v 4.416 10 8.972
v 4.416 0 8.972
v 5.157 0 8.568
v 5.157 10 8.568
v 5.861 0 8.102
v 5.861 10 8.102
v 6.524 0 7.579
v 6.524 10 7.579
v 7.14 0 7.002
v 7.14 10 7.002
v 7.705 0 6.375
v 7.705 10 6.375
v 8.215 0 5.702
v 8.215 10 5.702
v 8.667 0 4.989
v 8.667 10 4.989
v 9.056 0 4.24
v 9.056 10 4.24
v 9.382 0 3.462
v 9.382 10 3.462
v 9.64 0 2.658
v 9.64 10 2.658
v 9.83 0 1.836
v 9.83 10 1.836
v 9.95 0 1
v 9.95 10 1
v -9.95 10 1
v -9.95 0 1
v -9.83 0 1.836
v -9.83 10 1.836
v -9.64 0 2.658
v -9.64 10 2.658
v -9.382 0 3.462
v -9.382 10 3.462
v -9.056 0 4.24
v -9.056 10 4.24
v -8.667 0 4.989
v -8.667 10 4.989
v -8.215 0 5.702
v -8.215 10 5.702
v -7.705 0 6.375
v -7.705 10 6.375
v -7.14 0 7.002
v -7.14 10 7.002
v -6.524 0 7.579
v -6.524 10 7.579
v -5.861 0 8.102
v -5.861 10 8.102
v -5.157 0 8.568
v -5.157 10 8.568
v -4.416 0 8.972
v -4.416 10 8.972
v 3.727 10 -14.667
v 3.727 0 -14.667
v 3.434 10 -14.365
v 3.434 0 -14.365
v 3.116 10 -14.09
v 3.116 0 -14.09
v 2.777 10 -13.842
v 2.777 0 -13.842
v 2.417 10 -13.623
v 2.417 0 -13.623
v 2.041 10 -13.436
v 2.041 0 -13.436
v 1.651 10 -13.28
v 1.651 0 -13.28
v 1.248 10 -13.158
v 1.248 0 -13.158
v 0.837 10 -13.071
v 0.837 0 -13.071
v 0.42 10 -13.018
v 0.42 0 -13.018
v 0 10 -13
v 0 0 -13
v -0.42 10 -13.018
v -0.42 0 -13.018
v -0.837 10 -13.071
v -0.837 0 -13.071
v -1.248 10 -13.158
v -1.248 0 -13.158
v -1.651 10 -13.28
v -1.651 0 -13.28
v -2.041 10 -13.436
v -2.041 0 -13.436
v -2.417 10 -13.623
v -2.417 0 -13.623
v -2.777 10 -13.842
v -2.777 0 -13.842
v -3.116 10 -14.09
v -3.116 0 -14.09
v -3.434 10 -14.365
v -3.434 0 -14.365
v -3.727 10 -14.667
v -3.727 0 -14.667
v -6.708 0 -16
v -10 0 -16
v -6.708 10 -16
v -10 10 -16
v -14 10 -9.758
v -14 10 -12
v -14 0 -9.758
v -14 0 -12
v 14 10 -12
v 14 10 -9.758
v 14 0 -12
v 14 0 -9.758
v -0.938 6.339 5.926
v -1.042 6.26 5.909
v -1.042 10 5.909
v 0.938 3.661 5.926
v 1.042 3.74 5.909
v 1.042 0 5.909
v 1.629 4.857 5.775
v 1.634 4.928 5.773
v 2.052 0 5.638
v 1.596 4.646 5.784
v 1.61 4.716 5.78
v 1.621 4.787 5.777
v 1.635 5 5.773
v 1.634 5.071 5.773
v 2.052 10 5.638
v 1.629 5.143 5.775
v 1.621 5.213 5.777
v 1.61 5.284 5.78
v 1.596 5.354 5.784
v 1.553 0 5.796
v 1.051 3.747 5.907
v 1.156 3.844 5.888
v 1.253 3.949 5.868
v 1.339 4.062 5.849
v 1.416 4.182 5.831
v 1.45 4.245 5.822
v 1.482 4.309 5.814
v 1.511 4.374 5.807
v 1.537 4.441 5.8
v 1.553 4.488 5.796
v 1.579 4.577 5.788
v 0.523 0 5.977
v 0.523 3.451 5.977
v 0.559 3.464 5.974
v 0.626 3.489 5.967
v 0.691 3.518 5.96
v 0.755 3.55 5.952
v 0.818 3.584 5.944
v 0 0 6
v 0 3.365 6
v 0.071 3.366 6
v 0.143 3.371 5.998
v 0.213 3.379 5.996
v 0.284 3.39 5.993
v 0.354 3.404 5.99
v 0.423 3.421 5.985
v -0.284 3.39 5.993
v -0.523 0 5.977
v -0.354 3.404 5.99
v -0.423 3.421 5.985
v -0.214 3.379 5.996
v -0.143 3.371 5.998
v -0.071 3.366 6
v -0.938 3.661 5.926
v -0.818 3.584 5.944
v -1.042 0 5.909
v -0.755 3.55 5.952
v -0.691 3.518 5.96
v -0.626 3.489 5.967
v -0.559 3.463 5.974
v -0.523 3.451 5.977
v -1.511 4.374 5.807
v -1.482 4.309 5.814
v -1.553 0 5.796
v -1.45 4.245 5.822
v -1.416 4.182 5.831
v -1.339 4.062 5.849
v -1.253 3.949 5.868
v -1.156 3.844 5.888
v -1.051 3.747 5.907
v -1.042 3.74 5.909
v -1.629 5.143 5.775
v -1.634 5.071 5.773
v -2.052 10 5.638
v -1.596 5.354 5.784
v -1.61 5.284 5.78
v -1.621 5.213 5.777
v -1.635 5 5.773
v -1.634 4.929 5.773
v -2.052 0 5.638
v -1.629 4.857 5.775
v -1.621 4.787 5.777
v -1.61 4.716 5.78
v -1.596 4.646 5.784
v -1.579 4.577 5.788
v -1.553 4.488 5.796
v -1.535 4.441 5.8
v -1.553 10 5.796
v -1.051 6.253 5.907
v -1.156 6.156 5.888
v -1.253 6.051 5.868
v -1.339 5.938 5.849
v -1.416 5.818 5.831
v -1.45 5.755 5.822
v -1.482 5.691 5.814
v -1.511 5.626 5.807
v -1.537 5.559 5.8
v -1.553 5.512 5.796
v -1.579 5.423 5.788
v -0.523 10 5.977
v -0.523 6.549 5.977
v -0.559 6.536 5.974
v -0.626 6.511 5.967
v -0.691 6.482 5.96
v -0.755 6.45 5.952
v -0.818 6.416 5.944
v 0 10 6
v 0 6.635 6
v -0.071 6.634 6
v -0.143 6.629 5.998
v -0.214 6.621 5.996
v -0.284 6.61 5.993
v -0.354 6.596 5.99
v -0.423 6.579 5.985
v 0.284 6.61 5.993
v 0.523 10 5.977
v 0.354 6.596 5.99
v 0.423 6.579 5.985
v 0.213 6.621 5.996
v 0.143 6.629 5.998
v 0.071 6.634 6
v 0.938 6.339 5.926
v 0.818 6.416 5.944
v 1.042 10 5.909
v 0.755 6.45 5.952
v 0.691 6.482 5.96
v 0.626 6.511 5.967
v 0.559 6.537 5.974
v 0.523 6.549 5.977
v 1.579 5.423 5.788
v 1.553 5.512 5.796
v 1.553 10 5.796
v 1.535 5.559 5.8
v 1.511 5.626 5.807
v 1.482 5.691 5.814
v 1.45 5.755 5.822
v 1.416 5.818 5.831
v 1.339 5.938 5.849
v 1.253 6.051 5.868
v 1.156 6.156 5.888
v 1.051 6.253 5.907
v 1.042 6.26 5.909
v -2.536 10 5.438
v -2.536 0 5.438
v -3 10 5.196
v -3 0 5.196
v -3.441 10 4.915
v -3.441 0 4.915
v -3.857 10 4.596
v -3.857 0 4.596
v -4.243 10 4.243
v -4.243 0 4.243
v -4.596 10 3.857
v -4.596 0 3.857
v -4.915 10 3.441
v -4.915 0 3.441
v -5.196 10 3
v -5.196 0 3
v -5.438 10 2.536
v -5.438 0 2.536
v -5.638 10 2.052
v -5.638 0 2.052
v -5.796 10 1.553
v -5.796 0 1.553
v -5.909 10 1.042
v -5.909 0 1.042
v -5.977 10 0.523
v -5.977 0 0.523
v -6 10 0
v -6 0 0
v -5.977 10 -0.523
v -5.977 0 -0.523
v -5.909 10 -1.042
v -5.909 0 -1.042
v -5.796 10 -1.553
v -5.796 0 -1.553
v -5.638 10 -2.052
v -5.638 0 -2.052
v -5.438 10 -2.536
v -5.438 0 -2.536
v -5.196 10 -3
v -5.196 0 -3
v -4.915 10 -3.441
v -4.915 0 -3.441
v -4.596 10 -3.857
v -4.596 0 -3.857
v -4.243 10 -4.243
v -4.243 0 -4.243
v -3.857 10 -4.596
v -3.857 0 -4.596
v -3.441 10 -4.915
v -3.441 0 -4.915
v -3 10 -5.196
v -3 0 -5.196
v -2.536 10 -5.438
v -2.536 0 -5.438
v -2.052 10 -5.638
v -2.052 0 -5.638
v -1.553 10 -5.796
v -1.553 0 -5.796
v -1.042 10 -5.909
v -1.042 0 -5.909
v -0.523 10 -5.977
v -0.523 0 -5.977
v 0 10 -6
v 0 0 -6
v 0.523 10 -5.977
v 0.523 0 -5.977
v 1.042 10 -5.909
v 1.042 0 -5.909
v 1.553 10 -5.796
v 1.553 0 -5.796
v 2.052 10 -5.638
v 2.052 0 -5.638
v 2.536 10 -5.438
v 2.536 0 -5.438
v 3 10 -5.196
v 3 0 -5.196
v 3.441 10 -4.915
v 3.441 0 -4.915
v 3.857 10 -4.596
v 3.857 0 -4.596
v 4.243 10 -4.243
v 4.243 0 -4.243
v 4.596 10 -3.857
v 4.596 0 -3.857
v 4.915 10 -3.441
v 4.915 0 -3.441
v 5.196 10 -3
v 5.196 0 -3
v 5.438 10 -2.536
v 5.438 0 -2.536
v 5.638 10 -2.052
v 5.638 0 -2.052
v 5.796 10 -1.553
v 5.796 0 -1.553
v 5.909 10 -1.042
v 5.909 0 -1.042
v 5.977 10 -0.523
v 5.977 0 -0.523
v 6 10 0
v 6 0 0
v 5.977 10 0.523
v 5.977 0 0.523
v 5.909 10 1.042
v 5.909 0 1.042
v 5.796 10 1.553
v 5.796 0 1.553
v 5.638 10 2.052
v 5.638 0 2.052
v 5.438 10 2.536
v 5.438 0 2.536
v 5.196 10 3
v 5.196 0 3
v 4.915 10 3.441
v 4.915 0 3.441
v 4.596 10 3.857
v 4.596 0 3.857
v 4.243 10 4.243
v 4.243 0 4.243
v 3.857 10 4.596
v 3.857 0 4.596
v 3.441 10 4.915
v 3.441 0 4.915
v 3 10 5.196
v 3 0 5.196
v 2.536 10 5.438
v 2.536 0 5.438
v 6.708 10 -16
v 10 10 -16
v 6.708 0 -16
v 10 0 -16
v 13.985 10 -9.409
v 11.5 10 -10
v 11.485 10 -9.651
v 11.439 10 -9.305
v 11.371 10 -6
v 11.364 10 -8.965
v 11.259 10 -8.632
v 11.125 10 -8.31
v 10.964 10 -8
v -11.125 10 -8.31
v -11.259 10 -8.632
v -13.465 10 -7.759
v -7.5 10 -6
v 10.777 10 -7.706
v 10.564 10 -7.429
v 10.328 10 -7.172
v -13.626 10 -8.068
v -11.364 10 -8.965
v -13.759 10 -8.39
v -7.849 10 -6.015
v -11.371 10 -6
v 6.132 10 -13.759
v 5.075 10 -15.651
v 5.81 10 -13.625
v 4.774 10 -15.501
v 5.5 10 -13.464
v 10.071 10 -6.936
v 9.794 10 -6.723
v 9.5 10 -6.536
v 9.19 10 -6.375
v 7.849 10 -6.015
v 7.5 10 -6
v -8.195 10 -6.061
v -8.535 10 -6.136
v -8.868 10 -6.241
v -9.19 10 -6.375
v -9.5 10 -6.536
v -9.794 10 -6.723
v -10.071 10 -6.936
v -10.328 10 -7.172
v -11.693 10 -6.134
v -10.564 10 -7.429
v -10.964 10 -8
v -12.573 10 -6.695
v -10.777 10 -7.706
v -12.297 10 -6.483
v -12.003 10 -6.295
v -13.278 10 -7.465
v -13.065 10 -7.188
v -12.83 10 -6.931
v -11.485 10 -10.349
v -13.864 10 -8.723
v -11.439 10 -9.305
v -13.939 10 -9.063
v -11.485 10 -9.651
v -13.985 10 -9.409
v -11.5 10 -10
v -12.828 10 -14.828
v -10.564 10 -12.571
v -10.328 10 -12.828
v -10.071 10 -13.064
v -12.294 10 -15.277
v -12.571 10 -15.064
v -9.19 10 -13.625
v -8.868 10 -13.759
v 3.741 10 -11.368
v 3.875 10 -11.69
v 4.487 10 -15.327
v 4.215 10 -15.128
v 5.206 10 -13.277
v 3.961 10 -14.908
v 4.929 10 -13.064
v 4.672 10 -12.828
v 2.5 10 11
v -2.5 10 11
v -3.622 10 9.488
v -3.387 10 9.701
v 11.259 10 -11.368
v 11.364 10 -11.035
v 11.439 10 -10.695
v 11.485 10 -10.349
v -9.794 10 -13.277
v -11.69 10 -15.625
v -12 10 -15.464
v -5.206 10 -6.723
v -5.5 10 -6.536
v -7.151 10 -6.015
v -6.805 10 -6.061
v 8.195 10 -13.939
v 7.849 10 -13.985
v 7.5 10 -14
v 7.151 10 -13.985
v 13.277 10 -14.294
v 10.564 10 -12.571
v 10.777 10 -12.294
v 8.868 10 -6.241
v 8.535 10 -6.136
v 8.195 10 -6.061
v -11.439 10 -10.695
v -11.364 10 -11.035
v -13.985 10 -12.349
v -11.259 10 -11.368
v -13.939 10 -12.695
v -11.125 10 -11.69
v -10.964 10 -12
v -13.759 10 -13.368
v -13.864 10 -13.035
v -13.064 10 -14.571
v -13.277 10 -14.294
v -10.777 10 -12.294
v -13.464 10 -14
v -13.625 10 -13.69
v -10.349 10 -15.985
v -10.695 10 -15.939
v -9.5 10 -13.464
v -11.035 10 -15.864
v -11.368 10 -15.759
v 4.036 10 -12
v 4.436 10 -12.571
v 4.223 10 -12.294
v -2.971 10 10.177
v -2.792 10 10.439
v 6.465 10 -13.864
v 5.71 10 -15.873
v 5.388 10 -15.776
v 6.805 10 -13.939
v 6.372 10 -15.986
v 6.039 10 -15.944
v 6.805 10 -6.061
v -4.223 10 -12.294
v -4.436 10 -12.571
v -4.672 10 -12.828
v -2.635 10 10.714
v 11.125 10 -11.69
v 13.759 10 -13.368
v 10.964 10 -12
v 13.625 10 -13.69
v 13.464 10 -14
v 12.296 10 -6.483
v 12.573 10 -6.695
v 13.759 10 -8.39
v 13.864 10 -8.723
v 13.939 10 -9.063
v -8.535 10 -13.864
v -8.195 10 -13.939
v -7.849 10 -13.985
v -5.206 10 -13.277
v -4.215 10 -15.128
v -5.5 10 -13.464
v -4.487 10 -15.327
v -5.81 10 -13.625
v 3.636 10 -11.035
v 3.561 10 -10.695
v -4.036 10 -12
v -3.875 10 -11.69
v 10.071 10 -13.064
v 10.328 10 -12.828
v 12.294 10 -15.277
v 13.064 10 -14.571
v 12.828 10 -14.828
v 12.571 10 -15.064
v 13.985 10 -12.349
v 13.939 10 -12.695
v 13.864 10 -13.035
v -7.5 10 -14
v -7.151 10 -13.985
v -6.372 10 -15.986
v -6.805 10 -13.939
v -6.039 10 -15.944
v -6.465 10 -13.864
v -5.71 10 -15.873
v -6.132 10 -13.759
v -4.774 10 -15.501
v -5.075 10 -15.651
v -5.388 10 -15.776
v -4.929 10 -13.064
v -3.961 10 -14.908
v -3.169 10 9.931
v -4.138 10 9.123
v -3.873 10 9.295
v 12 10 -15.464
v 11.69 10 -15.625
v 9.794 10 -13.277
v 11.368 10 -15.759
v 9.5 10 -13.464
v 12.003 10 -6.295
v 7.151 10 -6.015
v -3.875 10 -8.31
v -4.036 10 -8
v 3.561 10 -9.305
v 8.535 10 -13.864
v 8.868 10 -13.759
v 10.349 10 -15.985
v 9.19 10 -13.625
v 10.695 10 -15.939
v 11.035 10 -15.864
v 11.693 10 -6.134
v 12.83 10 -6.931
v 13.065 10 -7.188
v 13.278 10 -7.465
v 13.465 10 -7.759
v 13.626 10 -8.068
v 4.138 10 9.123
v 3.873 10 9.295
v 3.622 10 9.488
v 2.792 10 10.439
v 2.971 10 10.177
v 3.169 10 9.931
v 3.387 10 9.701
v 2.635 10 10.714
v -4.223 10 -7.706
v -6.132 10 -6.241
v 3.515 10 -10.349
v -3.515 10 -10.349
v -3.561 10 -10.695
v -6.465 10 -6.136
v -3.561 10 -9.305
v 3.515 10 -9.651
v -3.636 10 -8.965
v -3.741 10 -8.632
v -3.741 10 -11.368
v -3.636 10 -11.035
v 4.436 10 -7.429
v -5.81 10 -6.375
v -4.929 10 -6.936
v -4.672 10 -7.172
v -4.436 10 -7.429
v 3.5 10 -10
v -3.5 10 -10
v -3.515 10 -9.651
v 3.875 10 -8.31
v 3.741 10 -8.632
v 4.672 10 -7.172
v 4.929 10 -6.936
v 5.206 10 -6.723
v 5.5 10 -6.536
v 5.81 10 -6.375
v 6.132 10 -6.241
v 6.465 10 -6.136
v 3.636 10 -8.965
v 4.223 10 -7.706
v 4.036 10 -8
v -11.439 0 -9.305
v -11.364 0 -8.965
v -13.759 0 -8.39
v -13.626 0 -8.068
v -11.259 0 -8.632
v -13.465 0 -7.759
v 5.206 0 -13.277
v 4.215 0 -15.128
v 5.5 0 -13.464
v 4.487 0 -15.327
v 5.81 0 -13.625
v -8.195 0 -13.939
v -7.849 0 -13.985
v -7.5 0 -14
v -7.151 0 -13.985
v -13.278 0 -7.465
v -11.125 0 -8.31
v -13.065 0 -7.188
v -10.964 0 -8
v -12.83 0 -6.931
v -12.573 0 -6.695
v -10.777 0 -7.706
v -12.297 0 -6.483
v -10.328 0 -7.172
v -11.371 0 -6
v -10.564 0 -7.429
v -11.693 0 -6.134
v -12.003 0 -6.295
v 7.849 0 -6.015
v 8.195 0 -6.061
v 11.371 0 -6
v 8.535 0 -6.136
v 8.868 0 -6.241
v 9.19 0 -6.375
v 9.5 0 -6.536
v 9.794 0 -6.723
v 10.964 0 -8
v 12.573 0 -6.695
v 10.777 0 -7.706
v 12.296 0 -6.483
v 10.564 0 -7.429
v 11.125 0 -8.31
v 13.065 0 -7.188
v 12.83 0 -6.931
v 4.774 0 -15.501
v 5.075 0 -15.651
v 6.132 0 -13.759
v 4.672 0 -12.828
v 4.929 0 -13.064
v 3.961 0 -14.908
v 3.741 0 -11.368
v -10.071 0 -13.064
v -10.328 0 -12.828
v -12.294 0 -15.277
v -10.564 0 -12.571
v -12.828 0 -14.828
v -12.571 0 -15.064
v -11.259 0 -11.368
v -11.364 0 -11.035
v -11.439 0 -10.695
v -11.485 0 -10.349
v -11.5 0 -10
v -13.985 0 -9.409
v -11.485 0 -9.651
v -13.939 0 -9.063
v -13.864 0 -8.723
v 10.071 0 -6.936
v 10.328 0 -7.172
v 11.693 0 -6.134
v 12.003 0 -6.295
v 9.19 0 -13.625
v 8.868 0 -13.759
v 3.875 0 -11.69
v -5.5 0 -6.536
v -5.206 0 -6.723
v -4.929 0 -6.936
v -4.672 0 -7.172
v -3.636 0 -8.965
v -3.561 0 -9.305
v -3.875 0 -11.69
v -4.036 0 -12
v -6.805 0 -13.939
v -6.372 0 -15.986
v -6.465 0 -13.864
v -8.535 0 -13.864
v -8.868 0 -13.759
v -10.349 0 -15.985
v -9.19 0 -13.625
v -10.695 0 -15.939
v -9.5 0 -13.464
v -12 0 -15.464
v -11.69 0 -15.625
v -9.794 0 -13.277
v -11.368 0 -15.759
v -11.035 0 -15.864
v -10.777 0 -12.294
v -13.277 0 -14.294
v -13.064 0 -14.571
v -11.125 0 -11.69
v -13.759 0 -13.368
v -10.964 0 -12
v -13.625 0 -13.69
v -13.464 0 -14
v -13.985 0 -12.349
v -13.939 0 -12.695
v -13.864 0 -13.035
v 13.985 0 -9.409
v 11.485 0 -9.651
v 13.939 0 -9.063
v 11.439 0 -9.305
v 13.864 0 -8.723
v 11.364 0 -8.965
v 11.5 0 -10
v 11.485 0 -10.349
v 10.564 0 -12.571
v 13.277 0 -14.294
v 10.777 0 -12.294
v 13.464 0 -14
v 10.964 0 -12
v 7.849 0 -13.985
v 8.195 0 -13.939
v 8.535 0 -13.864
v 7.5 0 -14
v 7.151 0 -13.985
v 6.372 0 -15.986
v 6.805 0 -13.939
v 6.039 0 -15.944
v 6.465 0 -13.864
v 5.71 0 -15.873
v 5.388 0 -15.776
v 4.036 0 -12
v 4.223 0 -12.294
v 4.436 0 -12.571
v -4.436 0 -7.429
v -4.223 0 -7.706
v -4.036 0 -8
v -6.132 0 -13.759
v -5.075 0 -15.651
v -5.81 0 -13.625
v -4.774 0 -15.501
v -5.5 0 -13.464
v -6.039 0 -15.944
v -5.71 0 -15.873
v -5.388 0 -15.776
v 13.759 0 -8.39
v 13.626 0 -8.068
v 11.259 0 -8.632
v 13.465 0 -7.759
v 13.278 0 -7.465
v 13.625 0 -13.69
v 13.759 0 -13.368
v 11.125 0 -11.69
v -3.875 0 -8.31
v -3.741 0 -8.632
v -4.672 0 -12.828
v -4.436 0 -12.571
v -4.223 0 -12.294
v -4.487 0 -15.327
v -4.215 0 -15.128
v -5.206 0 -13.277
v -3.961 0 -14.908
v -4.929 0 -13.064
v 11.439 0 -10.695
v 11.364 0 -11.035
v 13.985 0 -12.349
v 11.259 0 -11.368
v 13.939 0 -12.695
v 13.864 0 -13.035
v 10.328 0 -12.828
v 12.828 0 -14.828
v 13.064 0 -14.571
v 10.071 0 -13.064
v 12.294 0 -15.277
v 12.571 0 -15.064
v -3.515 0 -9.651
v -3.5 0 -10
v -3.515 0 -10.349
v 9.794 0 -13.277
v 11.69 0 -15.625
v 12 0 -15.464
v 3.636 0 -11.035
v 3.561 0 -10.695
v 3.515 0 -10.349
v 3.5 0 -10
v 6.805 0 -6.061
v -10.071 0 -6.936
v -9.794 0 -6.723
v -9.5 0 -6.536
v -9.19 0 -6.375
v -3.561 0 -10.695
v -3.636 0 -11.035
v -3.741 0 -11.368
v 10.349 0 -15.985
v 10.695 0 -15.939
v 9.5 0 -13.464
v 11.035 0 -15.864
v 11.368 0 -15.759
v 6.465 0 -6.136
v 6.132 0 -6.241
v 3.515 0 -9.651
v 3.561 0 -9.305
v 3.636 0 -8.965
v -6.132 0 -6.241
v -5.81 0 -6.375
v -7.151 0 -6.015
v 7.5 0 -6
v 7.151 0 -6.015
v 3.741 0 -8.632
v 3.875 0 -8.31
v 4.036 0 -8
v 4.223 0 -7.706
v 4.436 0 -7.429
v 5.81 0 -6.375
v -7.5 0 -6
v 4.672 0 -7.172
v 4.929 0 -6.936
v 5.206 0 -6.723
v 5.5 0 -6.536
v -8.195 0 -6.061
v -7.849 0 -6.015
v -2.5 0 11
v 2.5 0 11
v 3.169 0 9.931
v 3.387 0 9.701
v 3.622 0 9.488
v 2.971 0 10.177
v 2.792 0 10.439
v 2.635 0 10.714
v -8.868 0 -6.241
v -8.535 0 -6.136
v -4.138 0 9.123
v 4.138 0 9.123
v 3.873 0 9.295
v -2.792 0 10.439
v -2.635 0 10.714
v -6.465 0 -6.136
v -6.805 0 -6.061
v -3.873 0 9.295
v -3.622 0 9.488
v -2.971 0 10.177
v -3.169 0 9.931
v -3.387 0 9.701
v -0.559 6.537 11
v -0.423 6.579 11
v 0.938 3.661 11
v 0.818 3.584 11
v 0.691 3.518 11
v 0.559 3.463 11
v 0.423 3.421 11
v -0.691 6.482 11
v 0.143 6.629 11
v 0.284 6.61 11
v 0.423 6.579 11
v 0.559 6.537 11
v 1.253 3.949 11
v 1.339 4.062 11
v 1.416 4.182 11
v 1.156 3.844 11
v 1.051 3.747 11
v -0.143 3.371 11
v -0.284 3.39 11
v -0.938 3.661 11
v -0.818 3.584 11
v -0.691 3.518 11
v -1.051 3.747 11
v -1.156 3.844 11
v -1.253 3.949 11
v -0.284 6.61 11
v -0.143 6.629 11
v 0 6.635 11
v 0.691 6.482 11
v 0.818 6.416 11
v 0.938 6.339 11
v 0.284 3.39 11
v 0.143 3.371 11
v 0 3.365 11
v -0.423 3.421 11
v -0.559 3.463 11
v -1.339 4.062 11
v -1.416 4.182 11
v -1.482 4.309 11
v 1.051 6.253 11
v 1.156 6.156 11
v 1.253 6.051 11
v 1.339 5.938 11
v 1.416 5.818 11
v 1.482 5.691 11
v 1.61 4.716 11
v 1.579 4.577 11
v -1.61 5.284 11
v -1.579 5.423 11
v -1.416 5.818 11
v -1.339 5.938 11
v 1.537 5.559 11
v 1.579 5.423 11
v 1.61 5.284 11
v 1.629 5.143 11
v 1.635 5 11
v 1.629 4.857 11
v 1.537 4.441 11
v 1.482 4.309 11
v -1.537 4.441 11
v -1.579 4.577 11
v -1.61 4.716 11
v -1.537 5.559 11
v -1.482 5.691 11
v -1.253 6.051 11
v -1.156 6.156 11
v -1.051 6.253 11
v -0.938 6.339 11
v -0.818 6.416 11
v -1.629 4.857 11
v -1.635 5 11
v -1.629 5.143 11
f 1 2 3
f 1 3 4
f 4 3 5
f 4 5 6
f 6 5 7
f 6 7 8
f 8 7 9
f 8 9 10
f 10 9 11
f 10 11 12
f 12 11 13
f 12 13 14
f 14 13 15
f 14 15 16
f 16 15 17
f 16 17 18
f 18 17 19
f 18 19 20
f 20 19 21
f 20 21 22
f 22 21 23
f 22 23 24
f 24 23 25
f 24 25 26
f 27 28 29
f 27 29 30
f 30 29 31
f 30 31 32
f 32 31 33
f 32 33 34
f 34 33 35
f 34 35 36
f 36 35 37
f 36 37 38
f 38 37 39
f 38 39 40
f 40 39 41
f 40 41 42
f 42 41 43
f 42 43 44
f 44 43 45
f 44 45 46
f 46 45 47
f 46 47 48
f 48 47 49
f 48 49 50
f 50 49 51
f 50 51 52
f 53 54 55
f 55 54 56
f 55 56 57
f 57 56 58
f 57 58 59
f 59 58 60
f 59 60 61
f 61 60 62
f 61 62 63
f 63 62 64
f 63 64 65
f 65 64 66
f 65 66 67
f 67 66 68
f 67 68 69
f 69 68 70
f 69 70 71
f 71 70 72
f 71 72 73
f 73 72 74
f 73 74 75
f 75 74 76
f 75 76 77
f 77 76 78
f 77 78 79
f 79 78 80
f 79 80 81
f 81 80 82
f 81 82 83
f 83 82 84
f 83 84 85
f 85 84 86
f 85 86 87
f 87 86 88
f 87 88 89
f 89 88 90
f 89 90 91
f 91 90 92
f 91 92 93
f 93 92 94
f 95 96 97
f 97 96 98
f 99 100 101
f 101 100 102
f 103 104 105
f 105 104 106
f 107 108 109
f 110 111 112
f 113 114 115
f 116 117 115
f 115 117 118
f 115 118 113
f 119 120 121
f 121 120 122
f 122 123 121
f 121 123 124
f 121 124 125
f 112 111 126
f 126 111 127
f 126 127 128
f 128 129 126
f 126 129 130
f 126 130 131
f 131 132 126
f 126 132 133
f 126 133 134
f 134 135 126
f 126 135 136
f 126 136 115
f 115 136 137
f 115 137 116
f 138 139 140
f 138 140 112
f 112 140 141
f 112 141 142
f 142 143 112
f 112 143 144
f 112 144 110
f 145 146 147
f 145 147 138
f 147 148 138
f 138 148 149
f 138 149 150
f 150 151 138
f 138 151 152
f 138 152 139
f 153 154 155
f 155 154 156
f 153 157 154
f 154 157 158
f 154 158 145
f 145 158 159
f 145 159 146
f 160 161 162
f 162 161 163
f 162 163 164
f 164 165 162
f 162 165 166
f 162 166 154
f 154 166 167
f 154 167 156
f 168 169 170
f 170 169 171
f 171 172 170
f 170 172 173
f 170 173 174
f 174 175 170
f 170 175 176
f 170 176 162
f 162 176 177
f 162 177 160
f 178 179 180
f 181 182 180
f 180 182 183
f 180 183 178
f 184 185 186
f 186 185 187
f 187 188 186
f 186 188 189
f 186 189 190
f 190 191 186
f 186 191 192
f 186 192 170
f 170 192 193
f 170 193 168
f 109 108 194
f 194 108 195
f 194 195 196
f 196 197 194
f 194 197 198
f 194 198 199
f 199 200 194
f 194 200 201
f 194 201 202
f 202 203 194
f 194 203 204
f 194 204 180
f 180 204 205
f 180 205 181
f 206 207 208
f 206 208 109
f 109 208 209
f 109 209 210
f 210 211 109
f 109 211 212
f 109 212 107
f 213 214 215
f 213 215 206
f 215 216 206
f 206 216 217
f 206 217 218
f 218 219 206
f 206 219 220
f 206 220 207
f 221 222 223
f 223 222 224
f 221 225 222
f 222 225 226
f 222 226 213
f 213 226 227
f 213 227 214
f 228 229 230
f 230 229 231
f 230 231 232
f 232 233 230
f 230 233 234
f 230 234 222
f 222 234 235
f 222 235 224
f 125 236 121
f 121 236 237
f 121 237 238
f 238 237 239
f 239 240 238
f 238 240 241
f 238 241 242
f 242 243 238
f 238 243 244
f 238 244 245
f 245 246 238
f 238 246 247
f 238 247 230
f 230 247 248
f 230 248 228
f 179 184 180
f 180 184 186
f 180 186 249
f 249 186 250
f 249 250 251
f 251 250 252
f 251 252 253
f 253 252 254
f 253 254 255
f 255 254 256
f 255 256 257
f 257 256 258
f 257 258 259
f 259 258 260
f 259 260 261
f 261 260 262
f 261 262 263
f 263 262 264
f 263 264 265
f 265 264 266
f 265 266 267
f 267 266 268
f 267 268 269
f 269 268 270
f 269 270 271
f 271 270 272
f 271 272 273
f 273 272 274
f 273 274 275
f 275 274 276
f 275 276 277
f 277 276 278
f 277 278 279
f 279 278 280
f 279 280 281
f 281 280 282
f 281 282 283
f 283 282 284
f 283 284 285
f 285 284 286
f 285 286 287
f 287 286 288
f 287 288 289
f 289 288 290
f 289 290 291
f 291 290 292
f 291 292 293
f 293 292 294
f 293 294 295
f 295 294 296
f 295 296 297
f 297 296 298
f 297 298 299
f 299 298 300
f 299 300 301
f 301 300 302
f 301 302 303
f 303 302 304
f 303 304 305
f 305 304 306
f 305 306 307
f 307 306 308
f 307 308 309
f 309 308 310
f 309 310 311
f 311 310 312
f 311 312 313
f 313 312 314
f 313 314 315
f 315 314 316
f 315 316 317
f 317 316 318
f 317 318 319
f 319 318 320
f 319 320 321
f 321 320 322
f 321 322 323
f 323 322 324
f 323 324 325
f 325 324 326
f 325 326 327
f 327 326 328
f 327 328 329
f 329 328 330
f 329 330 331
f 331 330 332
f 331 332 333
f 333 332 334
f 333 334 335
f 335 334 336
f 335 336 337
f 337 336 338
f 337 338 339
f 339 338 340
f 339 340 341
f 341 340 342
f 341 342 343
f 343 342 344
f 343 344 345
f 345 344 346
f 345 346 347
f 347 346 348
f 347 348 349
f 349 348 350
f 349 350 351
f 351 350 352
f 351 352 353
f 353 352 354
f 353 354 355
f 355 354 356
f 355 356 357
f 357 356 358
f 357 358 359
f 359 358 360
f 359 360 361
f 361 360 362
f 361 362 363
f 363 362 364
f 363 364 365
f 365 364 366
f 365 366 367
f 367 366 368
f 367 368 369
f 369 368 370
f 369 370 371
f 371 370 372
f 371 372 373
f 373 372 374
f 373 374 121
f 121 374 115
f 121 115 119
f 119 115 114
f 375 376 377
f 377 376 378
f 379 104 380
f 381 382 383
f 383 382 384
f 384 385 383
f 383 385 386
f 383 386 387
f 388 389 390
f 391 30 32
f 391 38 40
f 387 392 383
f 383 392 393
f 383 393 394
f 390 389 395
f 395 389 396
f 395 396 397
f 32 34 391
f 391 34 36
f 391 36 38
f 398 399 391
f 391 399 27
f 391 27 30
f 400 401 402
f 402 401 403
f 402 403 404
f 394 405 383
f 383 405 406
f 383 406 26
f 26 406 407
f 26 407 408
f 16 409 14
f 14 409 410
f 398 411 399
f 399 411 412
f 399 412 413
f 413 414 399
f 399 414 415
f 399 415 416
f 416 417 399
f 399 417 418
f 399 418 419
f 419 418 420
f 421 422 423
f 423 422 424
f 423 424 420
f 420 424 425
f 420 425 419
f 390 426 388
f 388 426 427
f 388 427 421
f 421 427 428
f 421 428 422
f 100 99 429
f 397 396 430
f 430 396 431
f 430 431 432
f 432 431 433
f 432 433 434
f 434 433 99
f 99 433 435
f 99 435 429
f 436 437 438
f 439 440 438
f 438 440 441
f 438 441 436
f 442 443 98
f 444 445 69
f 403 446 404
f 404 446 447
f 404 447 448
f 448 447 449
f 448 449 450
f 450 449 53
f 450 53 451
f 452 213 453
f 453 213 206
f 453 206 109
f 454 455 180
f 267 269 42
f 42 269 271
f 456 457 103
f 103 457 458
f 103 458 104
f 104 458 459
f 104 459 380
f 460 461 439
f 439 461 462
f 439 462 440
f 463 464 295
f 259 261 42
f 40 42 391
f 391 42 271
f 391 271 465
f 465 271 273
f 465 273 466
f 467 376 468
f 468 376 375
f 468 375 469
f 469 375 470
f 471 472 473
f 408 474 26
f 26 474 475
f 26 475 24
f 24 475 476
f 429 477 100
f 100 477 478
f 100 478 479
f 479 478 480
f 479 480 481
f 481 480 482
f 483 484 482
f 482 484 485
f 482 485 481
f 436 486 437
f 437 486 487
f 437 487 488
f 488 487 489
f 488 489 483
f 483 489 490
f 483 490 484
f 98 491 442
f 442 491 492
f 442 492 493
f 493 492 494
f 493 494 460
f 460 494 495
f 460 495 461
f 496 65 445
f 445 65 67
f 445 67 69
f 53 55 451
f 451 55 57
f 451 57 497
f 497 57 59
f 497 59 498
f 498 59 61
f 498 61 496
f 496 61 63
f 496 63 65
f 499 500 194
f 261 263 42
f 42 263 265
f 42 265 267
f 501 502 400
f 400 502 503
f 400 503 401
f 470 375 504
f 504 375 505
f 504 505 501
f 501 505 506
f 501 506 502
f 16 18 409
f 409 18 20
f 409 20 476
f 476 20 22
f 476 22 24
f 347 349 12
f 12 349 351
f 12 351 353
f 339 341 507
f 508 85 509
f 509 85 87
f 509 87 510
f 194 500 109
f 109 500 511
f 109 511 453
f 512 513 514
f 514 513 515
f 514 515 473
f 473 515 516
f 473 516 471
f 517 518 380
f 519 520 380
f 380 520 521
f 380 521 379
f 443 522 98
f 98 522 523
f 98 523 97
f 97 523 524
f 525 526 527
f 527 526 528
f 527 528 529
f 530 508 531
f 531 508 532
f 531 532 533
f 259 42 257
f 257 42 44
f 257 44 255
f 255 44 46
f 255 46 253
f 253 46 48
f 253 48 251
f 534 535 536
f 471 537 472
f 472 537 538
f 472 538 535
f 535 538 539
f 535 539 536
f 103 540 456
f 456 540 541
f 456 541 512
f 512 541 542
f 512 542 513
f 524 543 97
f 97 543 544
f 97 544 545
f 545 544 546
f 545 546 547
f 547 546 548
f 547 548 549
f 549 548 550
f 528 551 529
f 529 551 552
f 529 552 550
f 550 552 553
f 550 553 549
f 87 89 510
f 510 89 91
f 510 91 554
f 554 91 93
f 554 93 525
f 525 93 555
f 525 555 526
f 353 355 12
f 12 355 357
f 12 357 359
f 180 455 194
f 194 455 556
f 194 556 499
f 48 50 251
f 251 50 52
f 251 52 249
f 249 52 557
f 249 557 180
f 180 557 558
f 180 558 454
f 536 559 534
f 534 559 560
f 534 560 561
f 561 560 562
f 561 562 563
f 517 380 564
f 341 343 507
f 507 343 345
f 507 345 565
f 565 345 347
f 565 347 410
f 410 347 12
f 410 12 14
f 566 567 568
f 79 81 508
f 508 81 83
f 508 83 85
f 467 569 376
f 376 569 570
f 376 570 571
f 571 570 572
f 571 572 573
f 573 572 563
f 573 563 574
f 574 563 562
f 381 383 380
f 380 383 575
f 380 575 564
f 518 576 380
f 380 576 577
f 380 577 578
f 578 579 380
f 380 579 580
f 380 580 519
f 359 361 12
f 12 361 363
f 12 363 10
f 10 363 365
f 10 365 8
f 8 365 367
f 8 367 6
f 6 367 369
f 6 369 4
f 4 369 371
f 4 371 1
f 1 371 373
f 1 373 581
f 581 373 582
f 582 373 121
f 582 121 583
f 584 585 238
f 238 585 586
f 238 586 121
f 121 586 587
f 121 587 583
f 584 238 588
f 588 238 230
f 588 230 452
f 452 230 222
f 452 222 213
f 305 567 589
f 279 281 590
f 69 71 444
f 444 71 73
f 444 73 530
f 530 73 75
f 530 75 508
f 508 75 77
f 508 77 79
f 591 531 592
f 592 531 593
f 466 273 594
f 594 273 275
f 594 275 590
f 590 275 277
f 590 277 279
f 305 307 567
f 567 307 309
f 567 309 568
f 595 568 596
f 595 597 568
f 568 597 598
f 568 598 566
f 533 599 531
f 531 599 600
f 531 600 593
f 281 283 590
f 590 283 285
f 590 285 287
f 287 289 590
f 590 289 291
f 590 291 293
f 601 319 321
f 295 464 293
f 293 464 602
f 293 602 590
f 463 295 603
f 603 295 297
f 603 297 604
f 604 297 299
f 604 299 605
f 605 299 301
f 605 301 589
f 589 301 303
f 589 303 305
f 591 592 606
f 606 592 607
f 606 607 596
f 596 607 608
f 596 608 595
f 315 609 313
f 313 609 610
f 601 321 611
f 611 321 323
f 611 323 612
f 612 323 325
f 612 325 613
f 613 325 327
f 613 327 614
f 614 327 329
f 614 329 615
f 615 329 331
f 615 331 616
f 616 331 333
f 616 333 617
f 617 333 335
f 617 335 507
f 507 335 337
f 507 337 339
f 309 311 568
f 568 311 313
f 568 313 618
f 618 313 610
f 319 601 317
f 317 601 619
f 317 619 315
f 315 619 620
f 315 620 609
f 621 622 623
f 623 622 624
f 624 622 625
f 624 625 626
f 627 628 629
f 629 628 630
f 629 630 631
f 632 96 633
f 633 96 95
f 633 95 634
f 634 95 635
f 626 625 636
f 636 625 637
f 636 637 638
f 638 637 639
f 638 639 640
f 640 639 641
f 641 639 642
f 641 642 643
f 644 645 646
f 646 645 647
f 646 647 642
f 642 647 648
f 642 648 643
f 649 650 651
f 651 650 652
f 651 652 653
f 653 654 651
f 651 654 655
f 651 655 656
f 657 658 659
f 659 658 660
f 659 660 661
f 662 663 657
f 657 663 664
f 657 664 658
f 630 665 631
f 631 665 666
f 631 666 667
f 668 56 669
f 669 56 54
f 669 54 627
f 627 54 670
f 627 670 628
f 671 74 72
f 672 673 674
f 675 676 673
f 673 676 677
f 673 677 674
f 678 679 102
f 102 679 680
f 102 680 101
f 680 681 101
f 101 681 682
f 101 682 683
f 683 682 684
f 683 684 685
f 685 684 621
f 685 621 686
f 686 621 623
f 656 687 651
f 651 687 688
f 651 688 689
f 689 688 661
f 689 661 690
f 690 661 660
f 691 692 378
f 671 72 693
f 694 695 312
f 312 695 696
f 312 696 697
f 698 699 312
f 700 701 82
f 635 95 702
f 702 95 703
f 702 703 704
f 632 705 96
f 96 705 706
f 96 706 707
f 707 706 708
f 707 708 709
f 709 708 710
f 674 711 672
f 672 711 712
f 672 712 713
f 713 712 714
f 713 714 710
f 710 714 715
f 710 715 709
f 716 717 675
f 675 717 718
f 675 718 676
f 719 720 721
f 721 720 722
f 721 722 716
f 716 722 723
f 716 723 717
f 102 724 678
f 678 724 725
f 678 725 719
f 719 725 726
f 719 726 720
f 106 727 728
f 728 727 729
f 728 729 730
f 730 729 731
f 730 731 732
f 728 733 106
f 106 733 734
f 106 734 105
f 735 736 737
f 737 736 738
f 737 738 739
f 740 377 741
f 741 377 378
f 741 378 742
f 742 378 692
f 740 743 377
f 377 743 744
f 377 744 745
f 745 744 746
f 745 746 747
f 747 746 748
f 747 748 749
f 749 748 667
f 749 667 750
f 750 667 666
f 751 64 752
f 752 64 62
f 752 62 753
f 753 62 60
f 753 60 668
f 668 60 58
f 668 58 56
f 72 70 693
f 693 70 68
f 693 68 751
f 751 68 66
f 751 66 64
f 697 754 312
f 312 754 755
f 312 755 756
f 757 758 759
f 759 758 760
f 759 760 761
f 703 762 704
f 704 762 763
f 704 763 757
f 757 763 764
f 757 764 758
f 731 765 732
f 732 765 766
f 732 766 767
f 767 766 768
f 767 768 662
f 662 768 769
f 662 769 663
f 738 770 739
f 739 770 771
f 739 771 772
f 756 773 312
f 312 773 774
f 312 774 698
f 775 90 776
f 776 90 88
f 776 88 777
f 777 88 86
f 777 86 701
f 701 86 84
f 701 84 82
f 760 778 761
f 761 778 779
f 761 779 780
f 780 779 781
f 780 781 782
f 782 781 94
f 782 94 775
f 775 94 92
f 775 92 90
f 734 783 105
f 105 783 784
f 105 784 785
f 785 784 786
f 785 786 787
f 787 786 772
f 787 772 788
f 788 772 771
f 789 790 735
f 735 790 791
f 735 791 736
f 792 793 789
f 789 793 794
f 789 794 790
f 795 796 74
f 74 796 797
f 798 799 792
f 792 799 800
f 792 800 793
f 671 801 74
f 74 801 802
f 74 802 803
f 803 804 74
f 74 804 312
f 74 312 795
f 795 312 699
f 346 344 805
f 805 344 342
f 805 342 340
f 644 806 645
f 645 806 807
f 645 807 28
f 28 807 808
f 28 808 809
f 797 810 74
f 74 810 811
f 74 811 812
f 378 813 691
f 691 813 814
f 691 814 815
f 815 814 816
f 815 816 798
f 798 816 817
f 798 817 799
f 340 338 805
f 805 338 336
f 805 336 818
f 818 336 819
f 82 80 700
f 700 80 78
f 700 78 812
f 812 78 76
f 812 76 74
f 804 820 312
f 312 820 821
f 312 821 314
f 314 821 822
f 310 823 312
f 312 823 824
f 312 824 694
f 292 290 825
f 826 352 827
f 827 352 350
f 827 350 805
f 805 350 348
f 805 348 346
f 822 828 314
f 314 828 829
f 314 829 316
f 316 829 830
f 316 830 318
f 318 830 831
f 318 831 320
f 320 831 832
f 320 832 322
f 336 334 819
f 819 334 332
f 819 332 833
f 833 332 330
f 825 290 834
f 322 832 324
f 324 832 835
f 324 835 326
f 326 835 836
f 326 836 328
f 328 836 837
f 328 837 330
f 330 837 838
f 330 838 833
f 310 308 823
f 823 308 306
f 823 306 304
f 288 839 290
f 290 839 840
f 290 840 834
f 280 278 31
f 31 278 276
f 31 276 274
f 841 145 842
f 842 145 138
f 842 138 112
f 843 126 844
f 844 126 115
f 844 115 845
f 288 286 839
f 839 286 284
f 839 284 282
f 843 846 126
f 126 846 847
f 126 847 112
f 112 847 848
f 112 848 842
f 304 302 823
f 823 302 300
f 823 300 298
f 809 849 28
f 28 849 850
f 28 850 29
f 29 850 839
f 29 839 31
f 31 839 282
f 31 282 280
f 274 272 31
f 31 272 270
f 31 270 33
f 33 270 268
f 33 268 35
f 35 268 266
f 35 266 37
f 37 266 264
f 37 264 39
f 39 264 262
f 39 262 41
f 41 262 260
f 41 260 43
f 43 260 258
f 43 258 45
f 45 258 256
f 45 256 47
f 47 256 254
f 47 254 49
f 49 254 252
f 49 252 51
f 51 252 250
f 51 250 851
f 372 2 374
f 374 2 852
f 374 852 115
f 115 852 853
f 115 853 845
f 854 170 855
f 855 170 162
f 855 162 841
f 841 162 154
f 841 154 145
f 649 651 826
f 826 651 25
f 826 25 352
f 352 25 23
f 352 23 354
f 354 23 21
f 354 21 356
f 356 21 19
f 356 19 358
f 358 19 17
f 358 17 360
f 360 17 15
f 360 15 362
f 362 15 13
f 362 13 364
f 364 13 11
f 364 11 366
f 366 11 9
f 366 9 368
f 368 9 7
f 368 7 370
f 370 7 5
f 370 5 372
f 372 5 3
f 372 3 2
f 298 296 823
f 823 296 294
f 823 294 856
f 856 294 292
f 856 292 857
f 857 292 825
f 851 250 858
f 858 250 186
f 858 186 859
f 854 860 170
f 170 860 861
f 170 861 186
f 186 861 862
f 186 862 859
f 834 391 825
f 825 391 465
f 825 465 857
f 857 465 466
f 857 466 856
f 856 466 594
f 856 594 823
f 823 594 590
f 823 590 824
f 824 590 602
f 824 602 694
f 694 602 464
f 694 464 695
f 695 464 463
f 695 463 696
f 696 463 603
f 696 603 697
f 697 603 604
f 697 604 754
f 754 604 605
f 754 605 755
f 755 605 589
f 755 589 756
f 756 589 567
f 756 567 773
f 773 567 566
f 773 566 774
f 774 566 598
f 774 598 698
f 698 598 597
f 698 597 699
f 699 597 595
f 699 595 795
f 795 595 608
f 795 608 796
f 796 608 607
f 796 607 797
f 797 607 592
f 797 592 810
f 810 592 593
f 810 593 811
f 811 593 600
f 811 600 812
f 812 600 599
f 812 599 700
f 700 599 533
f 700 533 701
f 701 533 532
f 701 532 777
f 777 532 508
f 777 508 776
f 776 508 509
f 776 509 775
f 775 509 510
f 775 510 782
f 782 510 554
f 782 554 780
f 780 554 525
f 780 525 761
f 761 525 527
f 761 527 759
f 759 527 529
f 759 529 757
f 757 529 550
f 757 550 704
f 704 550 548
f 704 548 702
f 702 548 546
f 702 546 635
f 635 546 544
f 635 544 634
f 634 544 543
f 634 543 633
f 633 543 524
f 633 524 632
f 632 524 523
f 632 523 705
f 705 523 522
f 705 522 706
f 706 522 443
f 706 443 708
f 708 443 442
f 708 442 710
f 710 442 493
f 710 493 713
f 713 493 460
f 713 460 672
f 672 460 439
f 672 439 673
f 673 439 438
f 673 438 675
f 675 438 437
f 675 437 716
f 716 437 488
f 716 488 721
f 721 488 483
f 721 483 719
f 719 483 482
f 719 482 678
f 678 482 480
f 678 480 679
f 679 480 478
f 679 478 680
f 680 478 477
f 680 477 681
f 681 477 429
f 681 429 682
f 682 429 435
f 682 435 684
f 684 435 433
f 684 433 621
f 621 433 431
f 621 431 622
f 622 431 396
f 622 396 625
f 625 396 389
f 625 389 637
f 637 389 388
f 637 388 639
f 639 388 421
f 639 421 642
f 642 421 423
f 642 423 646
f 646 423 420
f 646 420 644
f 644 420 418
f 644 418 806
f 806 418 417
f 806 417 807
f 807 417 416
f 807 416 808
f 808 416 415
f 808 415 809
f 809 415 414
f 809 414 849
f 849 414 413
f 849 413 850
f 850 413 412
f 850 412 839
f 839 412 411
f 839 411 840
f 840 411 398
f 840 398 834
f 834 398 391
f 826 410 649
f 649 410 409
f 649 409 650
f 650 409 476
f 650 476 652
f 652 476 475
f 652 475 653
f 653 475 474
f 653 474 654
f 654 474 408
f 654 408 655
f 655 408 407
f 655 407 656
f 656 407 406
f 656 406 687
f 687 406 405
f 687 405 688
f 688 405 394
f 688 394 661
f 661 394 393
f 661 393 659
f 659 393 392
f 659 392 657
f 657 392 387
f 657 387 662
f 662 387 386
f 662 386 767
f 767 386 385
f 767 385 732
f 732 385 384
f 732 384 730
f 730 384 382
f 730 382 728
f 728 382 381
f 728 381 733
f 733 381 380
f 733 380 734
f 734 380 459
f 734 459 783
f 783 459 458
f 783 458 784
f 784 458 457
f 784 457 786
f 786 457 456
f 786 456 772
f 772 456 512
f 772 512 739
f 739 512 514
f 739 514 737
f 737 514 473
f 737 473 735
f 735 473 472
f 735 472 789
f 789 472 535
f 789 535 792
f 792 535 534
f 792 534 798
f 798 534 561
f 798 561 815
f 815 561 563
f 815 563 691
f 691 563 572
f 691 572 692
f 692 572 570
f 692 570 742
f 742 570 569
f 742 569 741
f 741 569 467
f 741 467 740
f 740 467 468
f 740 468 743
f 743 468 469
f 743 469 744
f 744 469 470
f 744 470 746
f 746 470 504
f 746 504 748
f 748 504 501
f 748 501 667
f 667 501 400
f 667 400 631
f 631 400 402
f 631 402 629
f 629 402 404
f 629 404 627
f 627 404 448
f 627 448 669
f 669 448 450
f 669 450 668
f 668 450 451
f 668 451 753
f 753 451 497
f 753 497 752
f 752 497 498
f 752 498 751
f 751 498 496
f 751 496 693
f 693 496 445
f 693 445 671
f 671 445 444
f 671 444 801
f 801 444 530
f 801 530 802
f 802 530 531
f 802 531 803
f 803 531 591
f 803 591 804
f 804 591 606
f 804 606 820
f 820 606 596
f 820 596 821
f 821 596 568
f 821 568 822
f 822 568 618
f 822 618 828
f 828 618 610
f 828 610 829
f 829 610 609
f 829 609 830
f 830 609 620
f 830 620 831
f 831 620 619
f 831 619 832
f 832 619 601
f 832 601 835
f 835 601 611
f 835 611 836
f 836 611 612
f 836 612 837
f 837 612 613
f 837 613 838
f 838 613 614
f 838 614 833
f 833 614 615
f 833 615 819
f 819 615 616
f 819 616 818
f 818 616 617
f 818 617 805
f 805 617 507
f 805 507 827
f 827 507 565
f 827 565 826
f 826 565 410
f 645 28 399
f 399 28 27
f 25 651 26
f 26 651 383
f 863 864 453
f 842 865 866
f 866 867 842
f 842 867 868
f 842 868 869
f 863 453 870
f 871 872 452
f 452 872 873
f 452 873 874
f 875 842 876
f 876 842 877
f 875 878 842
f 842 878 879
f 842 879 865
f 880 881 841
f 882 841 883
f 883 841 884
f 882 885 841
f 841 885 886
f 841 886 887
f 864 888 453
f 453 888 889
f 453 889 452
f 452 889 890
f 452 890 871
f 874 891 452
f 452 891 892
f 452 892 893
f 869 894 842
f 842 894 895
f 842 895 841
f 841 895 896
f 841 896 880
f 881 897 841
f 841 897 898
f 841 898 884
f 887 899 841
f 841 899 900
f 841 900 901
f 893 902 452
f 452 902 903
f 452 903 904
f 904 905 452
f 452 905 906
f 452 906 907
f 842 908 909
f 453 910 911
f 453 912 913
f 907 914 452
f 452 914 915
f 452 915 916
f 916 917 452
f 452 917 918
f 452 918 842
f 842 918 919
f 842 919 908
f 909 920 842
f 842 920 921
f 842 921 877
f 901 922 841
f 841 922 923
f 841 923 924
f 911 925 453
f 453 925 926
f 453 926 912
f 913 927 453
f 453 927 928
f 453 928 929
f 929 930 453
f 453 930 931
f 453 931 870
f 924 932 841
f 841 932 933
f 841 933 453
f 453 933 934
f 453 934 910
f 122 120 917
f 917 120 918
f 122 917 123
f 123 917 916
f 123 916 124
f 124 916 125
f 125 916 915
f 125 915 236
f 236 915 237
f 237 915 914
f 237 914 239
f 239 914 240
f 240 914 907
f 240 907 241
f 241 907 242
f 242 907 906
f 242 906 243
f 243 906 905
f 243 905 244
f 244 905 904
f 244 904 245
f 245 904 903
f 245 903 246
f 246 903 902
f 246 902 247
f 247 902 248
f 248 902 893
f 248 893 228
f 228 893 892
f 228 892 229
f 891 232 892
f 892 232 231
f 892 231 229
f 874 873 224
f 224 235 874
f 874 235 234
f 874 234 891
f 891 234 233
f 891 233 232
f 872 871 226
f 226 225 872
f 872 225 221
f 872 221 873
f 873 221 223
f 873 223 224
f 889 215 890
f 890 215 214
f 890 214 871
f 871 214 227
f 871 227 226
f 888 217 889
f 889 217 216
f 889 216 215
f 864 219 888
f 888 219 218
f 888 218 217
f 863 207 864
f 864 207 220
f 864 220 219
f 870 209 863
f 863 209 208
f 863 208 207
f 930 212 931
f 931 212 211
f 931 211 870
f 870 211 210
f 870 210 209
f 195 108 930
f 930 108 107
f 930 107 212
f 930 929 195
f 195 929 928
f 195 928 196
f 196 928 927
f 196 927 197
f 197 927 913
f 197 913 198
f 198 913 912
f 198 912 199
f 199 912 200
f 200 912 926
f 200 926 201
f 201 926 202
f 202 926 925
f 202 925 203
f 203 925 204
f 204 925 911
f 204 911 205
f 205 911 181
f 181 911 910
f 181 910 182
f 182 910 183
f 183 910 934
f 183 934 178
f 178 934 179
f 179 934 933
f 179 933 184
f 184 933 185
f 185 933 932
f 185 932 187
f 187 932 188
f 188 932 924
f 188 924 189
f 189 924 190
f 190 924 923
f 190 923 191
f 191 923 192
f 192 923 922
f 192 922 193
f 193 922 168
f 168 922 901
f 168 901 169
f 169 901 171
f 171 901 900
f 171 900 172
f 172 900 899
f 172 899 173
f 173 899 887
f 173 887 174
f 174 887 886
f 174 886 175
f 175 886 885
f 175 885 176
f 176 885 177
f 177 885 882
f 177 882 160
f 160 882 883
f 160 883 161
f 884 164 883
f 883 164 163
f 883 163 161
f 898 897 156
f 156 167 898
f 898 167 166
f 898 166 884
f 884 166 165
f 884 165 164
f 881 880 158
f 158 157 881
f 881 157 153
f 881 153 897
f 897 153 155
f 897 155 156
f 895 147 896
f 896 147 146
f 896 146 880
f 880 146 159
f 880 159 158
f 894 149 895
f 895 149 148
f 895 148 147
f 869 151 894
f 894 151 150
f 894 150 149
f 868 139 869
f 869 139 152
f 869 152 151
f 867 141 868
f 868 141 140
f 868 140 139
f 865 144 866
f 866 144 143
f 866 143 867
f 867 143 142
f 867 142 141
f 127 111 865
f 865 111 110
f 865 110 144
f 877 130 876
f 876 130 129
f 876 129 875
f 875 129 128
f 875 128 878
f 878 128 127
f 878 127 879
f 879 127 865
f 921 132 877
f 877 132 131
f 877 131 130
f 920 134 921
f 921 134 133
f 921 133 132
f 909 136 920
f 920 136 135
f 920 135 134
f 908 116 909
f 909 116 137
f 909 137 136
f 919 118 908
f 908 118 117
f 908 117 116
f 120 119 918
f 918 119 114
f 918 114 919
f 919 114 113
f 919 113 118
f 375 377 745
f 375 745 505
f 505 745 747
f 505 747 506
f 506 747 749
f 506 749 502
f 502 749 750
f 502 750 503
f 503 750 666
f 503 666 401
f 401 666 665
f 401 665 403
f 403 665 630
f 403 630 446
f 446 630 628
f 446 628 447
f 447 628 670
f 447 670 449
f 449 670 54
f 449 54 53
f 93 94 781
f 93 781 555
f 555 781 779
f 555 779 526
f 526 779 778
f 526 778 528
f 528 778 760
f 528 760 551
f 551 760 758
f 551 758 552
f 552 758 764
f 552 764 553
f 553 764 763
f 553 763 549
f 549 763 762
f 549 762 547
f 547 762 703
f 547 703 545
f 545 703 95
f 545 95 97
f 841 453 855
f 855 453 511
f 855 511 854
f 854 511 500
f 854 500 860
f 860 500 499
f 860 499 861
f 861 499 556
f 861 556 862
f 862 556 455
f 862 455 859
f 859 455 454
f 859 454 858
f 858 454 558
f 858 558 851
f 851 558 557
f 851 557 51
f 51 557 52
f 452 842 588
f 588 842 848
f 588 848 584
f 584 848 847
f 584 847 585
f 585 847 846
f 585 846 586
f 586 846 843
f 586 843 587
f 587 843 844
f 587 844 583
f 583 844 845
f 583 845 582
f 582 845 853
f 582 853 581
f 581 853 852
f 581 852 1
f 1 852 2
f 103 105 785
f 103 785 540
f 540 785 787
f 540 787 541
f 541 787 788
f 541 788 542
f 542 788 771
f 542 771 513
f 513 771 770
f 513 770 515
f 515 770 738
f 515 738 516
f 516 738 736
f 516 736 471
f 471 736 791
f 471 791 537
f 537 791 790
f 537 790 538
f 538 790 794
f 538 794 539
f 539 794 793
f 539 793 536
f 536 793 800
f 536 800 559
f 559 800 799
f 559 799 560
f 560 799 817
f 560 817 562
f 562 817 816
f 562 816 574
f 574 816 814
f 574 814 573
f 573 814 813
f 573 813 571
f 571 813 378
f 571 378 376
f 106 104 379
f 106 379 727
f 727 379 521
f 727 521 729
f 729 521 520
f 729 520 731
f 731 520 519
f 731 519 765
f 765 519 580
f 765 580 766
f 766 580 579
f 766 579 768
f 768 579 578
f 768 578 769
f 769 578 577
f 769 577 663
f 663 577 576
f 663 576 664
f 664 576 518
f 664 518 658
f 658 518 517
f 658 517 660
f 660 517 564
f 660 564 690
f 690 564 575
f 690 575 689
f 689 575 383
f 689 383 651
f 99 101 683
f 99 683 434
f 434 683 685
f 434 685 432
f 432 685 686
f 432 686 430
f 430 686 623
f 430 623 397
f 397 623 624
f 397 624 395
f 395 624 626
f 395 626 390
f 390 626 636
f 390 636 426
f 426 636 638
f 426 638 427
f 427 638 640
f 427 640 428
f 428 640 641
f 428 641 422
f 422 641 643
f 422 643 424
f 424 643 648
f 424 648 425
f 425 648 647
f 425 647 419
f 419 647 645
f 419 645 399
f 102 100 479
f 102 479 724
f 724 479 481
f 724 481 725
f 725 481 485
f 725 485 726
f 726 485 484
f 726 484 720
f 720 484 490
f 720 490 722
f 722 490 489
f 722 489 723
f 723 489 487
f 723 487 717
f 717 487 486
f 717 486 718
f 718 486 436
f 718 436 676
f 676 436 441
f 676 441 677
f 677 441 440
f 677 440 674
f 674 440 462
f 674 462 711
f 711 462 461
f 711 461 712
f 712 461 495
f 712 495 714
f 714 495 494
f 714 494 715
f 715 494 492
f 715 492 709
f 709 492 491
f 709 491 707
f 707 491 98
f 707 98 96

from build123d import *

# Parameters (mm, degrees)
CROQUIS1_R              = 10
CROQUIS1_R_2            = 6
SALIENTE_EXTRUIR1_DEPTH = 10
CROQUIS2_R              = 4
CORTAR_EXTRUIR1_DEPTH   = 10
CHAFL_N1_DEPTH          = 10
CROQUIS3_W              = 5
CROQUIS3_H              = 2
SALIENTE_EXTRUIR2_DEPTH = 10
CROQUIS4_R              = 1.635125
CORTAR_EXTRUIR2_DEPTH   = 10
REDONDEO2_R             = 4


with BuildPart() as part:
    # Croquis1 → Saliente-Extruir1 (new body)
    # profile 1 of 2: a face of its own
    with BuildSketch(Plane(origin=(0, 0, 0), x_dir=(1, 0, 0), z_dir=(0, 1, 0))):
        Circle(CROQUIS1_R)
        with Locations(Location((0, 0, 0), (0, 0, 270))):
            Circle(CROQUIS1_R_2, mode=Mode.SUBTRACT)
    # profile 2 of 2: a face of its own
    with BuildSketch(Plane(origin=(0, 0, 0), x_dir=(1, 0, 0), z_dir=(0, 1, 0))):
        with BuildLine():
            Line((-14, 16), (-4.582575695, 16))
            ThreePointArc((-4.582575695, 16), (0, 13), (4.582575695, 16))
            Line((4.582575695, 16), (14, 16))
            Line((14, 16), (14, 6))
            Line((14, 6), (-14, 6))
            Line((-14, 6), (-14, 16))
        make_face()
    extrude(amount=SALIENTE_EXTRUIR1_DEPTH)

    # Croquis2 → Cortar-Extruir1 (cut)
    with BuildSketch(Plane(origin=(0, 10, 0), x_dir=(1, 0, 0), z_dir=(0, 1, 0))):
        with Locations(Location((-7.5, 10, 0), (0, 0, 270))):
            Circle(CROQUIS2_R)
        with Locations(Location((7.5, 10, 0), (0, 0, 270))):
            Circle(CROQUIS2_R)
    extrude(amount=-CORTAR_EXTRUIR1_DEPTH, mode=Mode.SUBTRACT)

    # Chaflán1: read off the stored shape, not the designer's step
    # Chaflán1 outline → Chaflán1 (add)
    with BuildSketch(Plane(origin=(0, 0, 0), x_dir=(1, 0, 0), z_dir=(0, 1, 0))):
        with BuildLine():
            ThreePointArc((8, 6), (9.633249581, 2.68337521), (9.949874371, -1))
            Line((9.949874371, -1), (11.371284996, 6))
            Line((11.371284996, 6), (8, 6))
        make_face()
        with BuildLine():
            Line((-11.371284996, 6), (-9.949874371, -1))
            ThreePointArc((-9.949874371, -1), (-9.633249581, 2.68337521), (-8, 6))
            Line((-8, 6), (-11.371284996, 6))
        make_face()
    extrude(amount=CHAFL_N1_DEPTH)

    # Croquis3 → Saliente-Extruir2 (add)
    with BuildSketch(Plane(origin=(0, 0, 0), x_dir=(1, 0, 0), z_dir=(0, 1, 0))):
        with Locations((0, -10)):
            Rectangle(CROQUIS3_W, CROQUIS3_H)
    extrude(amount=SALIENTE_EXTRUIR2_DEPTH)

    # Croquis4 → Cortar-Extruir2 (cut)
    with BuildSketch(Plane.XY.offset(11)):
        with Locations((0, 5)):
            Circle(CROQUIS4_R)
    extrude(amount=-CORTAR_EXTRUIR2_DEPTH, mode=Mode.SUBTRACT)

    # Redondeo2
    # the kernel refuses this fillet: 4 mm, written as the material it adds along each edge
    with BuildSketch(Plane(origin=(2.5, 10, 9.682458366), x_dir=(0, 0, 1), z_dir=(0, -1, 0))) as redondeo2_piece_1:
        with BuildLine():
            CenterArc((2.878230853, -3.68296744), REDONDEO2_R, 112.965221116, 40.826178459)
            Line((-0.710537495, -1.916405314), (-0.782312862, -1.881074072))
            ThreePointArc((-0.782312862, -1.881074072), (-0.381189036, -0.948592301), (-0.077459667, 0.02))
            Line((-0.077459667, 0.02), (0, 0.08))
            ThreePointArc((0, 0.08), (0.658770817, 0.08), (1.28632785, 0.073659349))
            Line((1.28632785, 0.073659349), (1.317541634, 0))
        make_face()
    extrude(amount=10)
    with BuildSketch(Plane(origin=(-2.5, 10, 9.682458366), x_dir=(-0.9376279565956984, 0, -0.3476403529657844), z_dir=(0, -1, 0))) as redondeo2_piece_2:
        with BuildLine():
            CenterArc((2.452664045, -3.979057814), REDONDEO2_R, 95.865544119, 40.826178459)
            Line((-0.458030639, -1.23536387), (-0.516244533, -1.180489992))
            ThreePointArc((-0.516244533, -1.180489992), (-0.304025556, -0.589870707), (-0.075010237, 0.027811228))
            Line((-0.075010237, 0.027811228), (0.008175547, 0.079581156))
            ThreePointArc((0.008175547, 0.079581156), (1.021943352, 0.027644534), (2.035711158, 0.079581156))
            Line((2.035711158, 0.079581156), (2.043886705, 0))
        make_face()
    extrude(amount=10)
    # the kernel refuses this fillet: 4 mm, written as the material it takes off along each edge
    with BuildSketch(Plane(origin=(4.582575695, -5.314070594, -16), x_dir=(-0.5401558180759948, 0, 0.8415650255319863), z_dir=(0, 1, 0))) as redondeo2_2_piece_1:
        with BuildLine():
            CenterArc((2.218089643, 3.949477654), REDONDEO2_R, 212.694246687, 48.189685104)
            Line((-1.14817046, 1.788854382), (-1.215495662, 1.745641917))
            Line((-1.215495662, 1.745641917), (-0.067325202, -0.043212465))
            Line((-0.067325202, -0.043212465), (0.012674798, -0.078989553))
            ThreePointArc((0.012674798, -0.078989553), (0.792174872, -0.016847068), (1.571674947, -0.078989553))
            Line((1.571674947, -0.078989553), (1.584349745, 0))
        make_face()
    extrude(amount=20.628141188, mode=Mode.SUBTRACT)
    with BuildSketch(Plane(origin=(14, -10, -16), x_dir=(-1, 0, 0), z_dir=(0, 1, 0)), Plane(origin=(-14, -10, -16), x_dir=(0, 0, 1), z_dir=(0, 1, 0))) as redondeo2_2_piece_2:
        with BuildLine():
            CenterArc((REDONDEO2_R, REDONDEO2_R), REDONDEO2_R, 180, 90)
            Line((0, REDONDEO2_R), (-REDONDEO2_R * 0.02, REDONDEO2_R))
            Line((-REDONDEO2_R * 0.02, REDONDEO2_R), (-REDONDEO2_R * 0.02, -REDONDEO2_R * 0.02))
            Line((-REDONDEO2_R * 0.02, -REDONDEO2_R * 0.02), (REDONDEO2_R, -REDONDEO2_R * 0.02))
            Line((REDONDEO2_R, -REDONDEO2_R * 0.02), (REDONDEO2_R, 0))
        make_face()
    extrude(amount=30, mode=Mode.SUBTRACT)
    with BuildSketch(Plane(origin=(-4.582575695, -5.314070594, -16), x_dir=(-1, 0, 0), z_dir=(0, 1, 0))) as redondeo2_2_piece_3:
        with BuildLine():
            CenterArc((2.125628238, 4), REDONDEO2_R, 221.810314896, 48.189685104)
            Line((-0.855795732, 1.333333333), (-0.915424212, 1.28))
            ThreePointArc((-0.915424212, 1.28), (-0.442075769, 0.657566625), (-0.073321211, -0.032))
            Line((-0.073321211, -0.032), (0, -0.08))
            Line((0, -0.08), (2.125628238, -0.08))
            Line((2.125628238, -0.08), (2.125628238, 0))
        make_face()
    extrude(amount=20.628141188, mode=Mode.SUBTRACT)
    with BuildSketch(Plane(origin=(14, -9.394006553, -6), x_dir=(0, 0, -1), z_dir=(0, 1, 0))) as redondeo2_2_piece_4:
        with BuildLine():
            CenterArc((3.757602621, 4), REDONDEO2_R, 200.048853319, 69.951146681)
            Line((0, 2.628715004), (-0.075152052, 2.601289304))
            ThreePointArc((-0.075152052, 2.601289304), (-0.08, 1.314357502), (-0.08, 0))
            Line((-0.08, 0), (0, -0.08))
            Line((0, -0.08), (3.757602621, -0.08))
            Line((3.757602621, -0.08), (3.757602621, 0))
        make_face()
    extrude(amount=28.788013107, mode=Mode.SUBTRACT)
    with BuildSketch(Plane(origin=(-14, -9.394006553, -6), x_dir=(1, 0, 0), z_dir=(0, 1, 0))) as redondeo2_2_piece_5:
        with BuildLine():
            CenterArc((4, 3.757602621), REDONDEO2_R, 180, 69.951146681)
            Line((0, 3.757602621), (-0.08, 3.757602621))
            Line((-0.08, 3.757602621), (-0.08, 0))
            Line((-0.08, 0), (0, -0.08))
            ThreePointArc((0, -0.08), (1.314357502, -0.08), (2.601289304, -0.075152052))
            Line((2.601289304, -0.075152052), (2.628715004, 0))
        make_face()
    extrude(amount=28.788013107, mode=Mode.SUBTRACT)


solid = part.part
